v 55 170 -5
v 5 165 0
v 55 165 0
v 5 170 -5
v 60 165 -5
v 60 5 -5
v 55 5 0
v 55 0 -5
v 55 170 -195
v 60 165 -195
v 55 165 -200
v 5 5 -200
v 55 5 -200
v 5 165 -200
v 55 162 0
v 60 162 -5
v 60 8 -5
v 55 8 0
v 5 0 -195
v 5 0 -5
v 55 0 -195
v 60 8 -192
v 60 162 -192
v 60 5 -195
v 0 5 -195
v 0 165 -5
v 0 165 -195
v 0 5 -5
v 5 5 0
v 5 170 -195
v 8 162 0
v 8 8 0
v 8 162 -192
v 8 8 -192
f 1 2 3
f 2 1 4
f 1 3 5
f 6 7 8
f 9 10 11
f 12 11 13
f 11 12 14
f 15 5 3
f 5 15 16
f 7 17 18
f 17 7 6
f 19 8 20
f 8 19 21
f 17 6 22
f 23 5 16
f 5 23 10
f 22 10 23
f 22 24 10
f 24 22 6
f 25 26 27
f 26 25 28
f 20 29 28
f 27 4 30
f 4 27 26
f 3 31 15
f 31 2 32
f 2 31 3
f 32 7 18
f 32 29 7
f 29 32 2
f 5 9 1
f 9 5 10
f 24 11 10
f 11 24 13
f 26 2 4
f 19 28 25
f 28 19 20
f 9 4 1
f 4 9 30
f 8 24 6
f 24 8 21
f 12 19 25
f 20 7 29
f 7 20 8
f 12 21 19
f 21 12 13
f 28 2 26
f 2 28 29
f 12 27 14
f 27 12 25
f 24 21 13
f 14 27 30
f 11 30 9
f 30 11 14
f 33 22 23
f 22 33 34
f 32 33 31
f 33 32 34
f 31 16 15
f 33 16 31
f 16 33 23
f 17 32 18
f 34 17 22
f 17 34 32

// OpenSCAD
// file: ../chamferer.scad
INFINITY = 10000;
ATOM = .01;

module chamfer_tool(r, fn, tool,
                    ax, ay, az,
                    ax2, ay2, az2,
                    ax3, ay3, az3) {
    rotate([ax3, ay3, az3])
    rotate([ax2, ay2, az2])
    rotate([ax, ay, az]) {
        if (tool=="sphere") {
            sphere(r, $fn=fn);
        }
        else if (tool=="hemisphere-up") {
            intersection() {
                sphere(r, $fn=fn);
                cylinder(r=r*2, h=r*2);
            }
        }
        else if (tool=="hemisphere-down") {
            difference() {
                sphere(r, $fn=fn);
                cylinder(r=r*2, h=r*2);
            }
        }
        else if (tool=="cone") {
            cylinder(r, r, 0, $fn=fn);
            scale([1, 1, -1])
            cylinder(r, r, 0, $fn=fn);
        }
        else if (tool=="cone-up") {
            cylinder(r, r, 0, $fn=fn, center=true);
        }
        else if (tool=="cone-down") {
            scale([1, 1, -1])
            cylinder(r, r, 0, $fn=fn, center=true);
        }
        else if (tool=="octahedron") {
            resize([r*2, r*2, r*2]) {
                cylinder(r, r, 0, $fn=4);
                scale([1, 1, -1])
                cylinder(r, r, 0, $fn=4);
            }
        }
        else if (tool=="pyramid") {
            resize([r*2, r*2, r*2]) {
                cylinder(r, r, 0, center=true, $fn=4);
            }
        }
        else if (tool=="rpyramid") {
            resize([r*2, r*2, r*2]) {
                cylinder(r, 0, r, center=true, $fn=4);
            }
        }
        else if (tool=="cylinder-z" || tool=="cylinder") {
            cylinder(r=r, h=ATOM, $fn=fn, center=true);
        }
        else if (tool=="cylinder-x") {
            rotate([0, 90, 0])
            cylinder(r=r, h=ATOM, $fn=fn, center=true);
        }
        else if (tool=="cylinder-y") {
            rotate([90, 0, 0])
            cylinder(r=r, h=ATOM, $fn=fn, center=true);
        }
        else if (tool=="cube") {
            cube(r*2, center=true);
        }
        else if (tool=="plate-y") {
            cube([r*2, ATOM, r*2], center=true);
        }
        else if (tool=="plate-z") {
            cube([r*2, r*2, ATOM], center=true);
        }
        else {
            assert(false, str("Unknown tool: ", tool));
        }
    }
}

module shrinker(r, tool, fn,
                ax, ay, az,
                ax2, ay2, az2,
                ax3, ay3, az3) {
    if (!r) {
        children();
    }
    else {
        // re-invert+grow = fillet
        difference() {
            cube(INFINITY/2, center=true);

            // invert+grow = carve
            minkowski() {
                difference() {
                    cube(INFINITY, center=true);
                    children();
                }
                //cube(r, center=true);
                chamfer_tool(r, fn, tool,
                             ax, ay, az,
                             ax2, ay2, az2,
                             ax3, ay3, az3);
            }
        }
    }
}

module chamferer(r, tool="sphere", fn=8, shrink=true, grow=true,
                 ax=0, ay=0, az=0,
                 ax2=0, ay2=0, az2=0,
                 ax3=0, ay3=0, az3=0,
) {
    if (!r) {
        children();
    }
    else {
        minkowski() {
            if (shrink)
                shrinker(r, tool, fn,
                         ax, ay, az,
                         ax2, ay2, az2,
                         ax3, ay3, az3) children();
            else
                children();
            
            if (grow)
                chamfer_tool(r, fn, tool,
                             ax, ay, az,
                             ax2, ay2, az2,
                             ax3, ay3, az3);
        }
    }
}



cube(50);

translate([70, 0, 0])
chamferer(5, "hemisphere-up", $preview? 6*4 : 30)
//shrinker(5, "sphere", $preview? 6*4 : 30)
cube(50);

translate([70*2, 0, 0])
chamferer(5, "octahedron", grow=false)
cube(50);
// main file
use <../chamferer.scad>

WIDTH  = 170;
HEIGHT =  60;
WALL   =   8;

ATOM = 0.03;

rotate([0, 90, 0])
difference() {
    chamferer(5, "octahedron")
    cube([200, WIDTH, HEIGHT]);

    translate([-WALL, WALL, WALL])
    cube([200, WIDTH - WALL*2, HEIGHT-WALL + ATOM]);
}
